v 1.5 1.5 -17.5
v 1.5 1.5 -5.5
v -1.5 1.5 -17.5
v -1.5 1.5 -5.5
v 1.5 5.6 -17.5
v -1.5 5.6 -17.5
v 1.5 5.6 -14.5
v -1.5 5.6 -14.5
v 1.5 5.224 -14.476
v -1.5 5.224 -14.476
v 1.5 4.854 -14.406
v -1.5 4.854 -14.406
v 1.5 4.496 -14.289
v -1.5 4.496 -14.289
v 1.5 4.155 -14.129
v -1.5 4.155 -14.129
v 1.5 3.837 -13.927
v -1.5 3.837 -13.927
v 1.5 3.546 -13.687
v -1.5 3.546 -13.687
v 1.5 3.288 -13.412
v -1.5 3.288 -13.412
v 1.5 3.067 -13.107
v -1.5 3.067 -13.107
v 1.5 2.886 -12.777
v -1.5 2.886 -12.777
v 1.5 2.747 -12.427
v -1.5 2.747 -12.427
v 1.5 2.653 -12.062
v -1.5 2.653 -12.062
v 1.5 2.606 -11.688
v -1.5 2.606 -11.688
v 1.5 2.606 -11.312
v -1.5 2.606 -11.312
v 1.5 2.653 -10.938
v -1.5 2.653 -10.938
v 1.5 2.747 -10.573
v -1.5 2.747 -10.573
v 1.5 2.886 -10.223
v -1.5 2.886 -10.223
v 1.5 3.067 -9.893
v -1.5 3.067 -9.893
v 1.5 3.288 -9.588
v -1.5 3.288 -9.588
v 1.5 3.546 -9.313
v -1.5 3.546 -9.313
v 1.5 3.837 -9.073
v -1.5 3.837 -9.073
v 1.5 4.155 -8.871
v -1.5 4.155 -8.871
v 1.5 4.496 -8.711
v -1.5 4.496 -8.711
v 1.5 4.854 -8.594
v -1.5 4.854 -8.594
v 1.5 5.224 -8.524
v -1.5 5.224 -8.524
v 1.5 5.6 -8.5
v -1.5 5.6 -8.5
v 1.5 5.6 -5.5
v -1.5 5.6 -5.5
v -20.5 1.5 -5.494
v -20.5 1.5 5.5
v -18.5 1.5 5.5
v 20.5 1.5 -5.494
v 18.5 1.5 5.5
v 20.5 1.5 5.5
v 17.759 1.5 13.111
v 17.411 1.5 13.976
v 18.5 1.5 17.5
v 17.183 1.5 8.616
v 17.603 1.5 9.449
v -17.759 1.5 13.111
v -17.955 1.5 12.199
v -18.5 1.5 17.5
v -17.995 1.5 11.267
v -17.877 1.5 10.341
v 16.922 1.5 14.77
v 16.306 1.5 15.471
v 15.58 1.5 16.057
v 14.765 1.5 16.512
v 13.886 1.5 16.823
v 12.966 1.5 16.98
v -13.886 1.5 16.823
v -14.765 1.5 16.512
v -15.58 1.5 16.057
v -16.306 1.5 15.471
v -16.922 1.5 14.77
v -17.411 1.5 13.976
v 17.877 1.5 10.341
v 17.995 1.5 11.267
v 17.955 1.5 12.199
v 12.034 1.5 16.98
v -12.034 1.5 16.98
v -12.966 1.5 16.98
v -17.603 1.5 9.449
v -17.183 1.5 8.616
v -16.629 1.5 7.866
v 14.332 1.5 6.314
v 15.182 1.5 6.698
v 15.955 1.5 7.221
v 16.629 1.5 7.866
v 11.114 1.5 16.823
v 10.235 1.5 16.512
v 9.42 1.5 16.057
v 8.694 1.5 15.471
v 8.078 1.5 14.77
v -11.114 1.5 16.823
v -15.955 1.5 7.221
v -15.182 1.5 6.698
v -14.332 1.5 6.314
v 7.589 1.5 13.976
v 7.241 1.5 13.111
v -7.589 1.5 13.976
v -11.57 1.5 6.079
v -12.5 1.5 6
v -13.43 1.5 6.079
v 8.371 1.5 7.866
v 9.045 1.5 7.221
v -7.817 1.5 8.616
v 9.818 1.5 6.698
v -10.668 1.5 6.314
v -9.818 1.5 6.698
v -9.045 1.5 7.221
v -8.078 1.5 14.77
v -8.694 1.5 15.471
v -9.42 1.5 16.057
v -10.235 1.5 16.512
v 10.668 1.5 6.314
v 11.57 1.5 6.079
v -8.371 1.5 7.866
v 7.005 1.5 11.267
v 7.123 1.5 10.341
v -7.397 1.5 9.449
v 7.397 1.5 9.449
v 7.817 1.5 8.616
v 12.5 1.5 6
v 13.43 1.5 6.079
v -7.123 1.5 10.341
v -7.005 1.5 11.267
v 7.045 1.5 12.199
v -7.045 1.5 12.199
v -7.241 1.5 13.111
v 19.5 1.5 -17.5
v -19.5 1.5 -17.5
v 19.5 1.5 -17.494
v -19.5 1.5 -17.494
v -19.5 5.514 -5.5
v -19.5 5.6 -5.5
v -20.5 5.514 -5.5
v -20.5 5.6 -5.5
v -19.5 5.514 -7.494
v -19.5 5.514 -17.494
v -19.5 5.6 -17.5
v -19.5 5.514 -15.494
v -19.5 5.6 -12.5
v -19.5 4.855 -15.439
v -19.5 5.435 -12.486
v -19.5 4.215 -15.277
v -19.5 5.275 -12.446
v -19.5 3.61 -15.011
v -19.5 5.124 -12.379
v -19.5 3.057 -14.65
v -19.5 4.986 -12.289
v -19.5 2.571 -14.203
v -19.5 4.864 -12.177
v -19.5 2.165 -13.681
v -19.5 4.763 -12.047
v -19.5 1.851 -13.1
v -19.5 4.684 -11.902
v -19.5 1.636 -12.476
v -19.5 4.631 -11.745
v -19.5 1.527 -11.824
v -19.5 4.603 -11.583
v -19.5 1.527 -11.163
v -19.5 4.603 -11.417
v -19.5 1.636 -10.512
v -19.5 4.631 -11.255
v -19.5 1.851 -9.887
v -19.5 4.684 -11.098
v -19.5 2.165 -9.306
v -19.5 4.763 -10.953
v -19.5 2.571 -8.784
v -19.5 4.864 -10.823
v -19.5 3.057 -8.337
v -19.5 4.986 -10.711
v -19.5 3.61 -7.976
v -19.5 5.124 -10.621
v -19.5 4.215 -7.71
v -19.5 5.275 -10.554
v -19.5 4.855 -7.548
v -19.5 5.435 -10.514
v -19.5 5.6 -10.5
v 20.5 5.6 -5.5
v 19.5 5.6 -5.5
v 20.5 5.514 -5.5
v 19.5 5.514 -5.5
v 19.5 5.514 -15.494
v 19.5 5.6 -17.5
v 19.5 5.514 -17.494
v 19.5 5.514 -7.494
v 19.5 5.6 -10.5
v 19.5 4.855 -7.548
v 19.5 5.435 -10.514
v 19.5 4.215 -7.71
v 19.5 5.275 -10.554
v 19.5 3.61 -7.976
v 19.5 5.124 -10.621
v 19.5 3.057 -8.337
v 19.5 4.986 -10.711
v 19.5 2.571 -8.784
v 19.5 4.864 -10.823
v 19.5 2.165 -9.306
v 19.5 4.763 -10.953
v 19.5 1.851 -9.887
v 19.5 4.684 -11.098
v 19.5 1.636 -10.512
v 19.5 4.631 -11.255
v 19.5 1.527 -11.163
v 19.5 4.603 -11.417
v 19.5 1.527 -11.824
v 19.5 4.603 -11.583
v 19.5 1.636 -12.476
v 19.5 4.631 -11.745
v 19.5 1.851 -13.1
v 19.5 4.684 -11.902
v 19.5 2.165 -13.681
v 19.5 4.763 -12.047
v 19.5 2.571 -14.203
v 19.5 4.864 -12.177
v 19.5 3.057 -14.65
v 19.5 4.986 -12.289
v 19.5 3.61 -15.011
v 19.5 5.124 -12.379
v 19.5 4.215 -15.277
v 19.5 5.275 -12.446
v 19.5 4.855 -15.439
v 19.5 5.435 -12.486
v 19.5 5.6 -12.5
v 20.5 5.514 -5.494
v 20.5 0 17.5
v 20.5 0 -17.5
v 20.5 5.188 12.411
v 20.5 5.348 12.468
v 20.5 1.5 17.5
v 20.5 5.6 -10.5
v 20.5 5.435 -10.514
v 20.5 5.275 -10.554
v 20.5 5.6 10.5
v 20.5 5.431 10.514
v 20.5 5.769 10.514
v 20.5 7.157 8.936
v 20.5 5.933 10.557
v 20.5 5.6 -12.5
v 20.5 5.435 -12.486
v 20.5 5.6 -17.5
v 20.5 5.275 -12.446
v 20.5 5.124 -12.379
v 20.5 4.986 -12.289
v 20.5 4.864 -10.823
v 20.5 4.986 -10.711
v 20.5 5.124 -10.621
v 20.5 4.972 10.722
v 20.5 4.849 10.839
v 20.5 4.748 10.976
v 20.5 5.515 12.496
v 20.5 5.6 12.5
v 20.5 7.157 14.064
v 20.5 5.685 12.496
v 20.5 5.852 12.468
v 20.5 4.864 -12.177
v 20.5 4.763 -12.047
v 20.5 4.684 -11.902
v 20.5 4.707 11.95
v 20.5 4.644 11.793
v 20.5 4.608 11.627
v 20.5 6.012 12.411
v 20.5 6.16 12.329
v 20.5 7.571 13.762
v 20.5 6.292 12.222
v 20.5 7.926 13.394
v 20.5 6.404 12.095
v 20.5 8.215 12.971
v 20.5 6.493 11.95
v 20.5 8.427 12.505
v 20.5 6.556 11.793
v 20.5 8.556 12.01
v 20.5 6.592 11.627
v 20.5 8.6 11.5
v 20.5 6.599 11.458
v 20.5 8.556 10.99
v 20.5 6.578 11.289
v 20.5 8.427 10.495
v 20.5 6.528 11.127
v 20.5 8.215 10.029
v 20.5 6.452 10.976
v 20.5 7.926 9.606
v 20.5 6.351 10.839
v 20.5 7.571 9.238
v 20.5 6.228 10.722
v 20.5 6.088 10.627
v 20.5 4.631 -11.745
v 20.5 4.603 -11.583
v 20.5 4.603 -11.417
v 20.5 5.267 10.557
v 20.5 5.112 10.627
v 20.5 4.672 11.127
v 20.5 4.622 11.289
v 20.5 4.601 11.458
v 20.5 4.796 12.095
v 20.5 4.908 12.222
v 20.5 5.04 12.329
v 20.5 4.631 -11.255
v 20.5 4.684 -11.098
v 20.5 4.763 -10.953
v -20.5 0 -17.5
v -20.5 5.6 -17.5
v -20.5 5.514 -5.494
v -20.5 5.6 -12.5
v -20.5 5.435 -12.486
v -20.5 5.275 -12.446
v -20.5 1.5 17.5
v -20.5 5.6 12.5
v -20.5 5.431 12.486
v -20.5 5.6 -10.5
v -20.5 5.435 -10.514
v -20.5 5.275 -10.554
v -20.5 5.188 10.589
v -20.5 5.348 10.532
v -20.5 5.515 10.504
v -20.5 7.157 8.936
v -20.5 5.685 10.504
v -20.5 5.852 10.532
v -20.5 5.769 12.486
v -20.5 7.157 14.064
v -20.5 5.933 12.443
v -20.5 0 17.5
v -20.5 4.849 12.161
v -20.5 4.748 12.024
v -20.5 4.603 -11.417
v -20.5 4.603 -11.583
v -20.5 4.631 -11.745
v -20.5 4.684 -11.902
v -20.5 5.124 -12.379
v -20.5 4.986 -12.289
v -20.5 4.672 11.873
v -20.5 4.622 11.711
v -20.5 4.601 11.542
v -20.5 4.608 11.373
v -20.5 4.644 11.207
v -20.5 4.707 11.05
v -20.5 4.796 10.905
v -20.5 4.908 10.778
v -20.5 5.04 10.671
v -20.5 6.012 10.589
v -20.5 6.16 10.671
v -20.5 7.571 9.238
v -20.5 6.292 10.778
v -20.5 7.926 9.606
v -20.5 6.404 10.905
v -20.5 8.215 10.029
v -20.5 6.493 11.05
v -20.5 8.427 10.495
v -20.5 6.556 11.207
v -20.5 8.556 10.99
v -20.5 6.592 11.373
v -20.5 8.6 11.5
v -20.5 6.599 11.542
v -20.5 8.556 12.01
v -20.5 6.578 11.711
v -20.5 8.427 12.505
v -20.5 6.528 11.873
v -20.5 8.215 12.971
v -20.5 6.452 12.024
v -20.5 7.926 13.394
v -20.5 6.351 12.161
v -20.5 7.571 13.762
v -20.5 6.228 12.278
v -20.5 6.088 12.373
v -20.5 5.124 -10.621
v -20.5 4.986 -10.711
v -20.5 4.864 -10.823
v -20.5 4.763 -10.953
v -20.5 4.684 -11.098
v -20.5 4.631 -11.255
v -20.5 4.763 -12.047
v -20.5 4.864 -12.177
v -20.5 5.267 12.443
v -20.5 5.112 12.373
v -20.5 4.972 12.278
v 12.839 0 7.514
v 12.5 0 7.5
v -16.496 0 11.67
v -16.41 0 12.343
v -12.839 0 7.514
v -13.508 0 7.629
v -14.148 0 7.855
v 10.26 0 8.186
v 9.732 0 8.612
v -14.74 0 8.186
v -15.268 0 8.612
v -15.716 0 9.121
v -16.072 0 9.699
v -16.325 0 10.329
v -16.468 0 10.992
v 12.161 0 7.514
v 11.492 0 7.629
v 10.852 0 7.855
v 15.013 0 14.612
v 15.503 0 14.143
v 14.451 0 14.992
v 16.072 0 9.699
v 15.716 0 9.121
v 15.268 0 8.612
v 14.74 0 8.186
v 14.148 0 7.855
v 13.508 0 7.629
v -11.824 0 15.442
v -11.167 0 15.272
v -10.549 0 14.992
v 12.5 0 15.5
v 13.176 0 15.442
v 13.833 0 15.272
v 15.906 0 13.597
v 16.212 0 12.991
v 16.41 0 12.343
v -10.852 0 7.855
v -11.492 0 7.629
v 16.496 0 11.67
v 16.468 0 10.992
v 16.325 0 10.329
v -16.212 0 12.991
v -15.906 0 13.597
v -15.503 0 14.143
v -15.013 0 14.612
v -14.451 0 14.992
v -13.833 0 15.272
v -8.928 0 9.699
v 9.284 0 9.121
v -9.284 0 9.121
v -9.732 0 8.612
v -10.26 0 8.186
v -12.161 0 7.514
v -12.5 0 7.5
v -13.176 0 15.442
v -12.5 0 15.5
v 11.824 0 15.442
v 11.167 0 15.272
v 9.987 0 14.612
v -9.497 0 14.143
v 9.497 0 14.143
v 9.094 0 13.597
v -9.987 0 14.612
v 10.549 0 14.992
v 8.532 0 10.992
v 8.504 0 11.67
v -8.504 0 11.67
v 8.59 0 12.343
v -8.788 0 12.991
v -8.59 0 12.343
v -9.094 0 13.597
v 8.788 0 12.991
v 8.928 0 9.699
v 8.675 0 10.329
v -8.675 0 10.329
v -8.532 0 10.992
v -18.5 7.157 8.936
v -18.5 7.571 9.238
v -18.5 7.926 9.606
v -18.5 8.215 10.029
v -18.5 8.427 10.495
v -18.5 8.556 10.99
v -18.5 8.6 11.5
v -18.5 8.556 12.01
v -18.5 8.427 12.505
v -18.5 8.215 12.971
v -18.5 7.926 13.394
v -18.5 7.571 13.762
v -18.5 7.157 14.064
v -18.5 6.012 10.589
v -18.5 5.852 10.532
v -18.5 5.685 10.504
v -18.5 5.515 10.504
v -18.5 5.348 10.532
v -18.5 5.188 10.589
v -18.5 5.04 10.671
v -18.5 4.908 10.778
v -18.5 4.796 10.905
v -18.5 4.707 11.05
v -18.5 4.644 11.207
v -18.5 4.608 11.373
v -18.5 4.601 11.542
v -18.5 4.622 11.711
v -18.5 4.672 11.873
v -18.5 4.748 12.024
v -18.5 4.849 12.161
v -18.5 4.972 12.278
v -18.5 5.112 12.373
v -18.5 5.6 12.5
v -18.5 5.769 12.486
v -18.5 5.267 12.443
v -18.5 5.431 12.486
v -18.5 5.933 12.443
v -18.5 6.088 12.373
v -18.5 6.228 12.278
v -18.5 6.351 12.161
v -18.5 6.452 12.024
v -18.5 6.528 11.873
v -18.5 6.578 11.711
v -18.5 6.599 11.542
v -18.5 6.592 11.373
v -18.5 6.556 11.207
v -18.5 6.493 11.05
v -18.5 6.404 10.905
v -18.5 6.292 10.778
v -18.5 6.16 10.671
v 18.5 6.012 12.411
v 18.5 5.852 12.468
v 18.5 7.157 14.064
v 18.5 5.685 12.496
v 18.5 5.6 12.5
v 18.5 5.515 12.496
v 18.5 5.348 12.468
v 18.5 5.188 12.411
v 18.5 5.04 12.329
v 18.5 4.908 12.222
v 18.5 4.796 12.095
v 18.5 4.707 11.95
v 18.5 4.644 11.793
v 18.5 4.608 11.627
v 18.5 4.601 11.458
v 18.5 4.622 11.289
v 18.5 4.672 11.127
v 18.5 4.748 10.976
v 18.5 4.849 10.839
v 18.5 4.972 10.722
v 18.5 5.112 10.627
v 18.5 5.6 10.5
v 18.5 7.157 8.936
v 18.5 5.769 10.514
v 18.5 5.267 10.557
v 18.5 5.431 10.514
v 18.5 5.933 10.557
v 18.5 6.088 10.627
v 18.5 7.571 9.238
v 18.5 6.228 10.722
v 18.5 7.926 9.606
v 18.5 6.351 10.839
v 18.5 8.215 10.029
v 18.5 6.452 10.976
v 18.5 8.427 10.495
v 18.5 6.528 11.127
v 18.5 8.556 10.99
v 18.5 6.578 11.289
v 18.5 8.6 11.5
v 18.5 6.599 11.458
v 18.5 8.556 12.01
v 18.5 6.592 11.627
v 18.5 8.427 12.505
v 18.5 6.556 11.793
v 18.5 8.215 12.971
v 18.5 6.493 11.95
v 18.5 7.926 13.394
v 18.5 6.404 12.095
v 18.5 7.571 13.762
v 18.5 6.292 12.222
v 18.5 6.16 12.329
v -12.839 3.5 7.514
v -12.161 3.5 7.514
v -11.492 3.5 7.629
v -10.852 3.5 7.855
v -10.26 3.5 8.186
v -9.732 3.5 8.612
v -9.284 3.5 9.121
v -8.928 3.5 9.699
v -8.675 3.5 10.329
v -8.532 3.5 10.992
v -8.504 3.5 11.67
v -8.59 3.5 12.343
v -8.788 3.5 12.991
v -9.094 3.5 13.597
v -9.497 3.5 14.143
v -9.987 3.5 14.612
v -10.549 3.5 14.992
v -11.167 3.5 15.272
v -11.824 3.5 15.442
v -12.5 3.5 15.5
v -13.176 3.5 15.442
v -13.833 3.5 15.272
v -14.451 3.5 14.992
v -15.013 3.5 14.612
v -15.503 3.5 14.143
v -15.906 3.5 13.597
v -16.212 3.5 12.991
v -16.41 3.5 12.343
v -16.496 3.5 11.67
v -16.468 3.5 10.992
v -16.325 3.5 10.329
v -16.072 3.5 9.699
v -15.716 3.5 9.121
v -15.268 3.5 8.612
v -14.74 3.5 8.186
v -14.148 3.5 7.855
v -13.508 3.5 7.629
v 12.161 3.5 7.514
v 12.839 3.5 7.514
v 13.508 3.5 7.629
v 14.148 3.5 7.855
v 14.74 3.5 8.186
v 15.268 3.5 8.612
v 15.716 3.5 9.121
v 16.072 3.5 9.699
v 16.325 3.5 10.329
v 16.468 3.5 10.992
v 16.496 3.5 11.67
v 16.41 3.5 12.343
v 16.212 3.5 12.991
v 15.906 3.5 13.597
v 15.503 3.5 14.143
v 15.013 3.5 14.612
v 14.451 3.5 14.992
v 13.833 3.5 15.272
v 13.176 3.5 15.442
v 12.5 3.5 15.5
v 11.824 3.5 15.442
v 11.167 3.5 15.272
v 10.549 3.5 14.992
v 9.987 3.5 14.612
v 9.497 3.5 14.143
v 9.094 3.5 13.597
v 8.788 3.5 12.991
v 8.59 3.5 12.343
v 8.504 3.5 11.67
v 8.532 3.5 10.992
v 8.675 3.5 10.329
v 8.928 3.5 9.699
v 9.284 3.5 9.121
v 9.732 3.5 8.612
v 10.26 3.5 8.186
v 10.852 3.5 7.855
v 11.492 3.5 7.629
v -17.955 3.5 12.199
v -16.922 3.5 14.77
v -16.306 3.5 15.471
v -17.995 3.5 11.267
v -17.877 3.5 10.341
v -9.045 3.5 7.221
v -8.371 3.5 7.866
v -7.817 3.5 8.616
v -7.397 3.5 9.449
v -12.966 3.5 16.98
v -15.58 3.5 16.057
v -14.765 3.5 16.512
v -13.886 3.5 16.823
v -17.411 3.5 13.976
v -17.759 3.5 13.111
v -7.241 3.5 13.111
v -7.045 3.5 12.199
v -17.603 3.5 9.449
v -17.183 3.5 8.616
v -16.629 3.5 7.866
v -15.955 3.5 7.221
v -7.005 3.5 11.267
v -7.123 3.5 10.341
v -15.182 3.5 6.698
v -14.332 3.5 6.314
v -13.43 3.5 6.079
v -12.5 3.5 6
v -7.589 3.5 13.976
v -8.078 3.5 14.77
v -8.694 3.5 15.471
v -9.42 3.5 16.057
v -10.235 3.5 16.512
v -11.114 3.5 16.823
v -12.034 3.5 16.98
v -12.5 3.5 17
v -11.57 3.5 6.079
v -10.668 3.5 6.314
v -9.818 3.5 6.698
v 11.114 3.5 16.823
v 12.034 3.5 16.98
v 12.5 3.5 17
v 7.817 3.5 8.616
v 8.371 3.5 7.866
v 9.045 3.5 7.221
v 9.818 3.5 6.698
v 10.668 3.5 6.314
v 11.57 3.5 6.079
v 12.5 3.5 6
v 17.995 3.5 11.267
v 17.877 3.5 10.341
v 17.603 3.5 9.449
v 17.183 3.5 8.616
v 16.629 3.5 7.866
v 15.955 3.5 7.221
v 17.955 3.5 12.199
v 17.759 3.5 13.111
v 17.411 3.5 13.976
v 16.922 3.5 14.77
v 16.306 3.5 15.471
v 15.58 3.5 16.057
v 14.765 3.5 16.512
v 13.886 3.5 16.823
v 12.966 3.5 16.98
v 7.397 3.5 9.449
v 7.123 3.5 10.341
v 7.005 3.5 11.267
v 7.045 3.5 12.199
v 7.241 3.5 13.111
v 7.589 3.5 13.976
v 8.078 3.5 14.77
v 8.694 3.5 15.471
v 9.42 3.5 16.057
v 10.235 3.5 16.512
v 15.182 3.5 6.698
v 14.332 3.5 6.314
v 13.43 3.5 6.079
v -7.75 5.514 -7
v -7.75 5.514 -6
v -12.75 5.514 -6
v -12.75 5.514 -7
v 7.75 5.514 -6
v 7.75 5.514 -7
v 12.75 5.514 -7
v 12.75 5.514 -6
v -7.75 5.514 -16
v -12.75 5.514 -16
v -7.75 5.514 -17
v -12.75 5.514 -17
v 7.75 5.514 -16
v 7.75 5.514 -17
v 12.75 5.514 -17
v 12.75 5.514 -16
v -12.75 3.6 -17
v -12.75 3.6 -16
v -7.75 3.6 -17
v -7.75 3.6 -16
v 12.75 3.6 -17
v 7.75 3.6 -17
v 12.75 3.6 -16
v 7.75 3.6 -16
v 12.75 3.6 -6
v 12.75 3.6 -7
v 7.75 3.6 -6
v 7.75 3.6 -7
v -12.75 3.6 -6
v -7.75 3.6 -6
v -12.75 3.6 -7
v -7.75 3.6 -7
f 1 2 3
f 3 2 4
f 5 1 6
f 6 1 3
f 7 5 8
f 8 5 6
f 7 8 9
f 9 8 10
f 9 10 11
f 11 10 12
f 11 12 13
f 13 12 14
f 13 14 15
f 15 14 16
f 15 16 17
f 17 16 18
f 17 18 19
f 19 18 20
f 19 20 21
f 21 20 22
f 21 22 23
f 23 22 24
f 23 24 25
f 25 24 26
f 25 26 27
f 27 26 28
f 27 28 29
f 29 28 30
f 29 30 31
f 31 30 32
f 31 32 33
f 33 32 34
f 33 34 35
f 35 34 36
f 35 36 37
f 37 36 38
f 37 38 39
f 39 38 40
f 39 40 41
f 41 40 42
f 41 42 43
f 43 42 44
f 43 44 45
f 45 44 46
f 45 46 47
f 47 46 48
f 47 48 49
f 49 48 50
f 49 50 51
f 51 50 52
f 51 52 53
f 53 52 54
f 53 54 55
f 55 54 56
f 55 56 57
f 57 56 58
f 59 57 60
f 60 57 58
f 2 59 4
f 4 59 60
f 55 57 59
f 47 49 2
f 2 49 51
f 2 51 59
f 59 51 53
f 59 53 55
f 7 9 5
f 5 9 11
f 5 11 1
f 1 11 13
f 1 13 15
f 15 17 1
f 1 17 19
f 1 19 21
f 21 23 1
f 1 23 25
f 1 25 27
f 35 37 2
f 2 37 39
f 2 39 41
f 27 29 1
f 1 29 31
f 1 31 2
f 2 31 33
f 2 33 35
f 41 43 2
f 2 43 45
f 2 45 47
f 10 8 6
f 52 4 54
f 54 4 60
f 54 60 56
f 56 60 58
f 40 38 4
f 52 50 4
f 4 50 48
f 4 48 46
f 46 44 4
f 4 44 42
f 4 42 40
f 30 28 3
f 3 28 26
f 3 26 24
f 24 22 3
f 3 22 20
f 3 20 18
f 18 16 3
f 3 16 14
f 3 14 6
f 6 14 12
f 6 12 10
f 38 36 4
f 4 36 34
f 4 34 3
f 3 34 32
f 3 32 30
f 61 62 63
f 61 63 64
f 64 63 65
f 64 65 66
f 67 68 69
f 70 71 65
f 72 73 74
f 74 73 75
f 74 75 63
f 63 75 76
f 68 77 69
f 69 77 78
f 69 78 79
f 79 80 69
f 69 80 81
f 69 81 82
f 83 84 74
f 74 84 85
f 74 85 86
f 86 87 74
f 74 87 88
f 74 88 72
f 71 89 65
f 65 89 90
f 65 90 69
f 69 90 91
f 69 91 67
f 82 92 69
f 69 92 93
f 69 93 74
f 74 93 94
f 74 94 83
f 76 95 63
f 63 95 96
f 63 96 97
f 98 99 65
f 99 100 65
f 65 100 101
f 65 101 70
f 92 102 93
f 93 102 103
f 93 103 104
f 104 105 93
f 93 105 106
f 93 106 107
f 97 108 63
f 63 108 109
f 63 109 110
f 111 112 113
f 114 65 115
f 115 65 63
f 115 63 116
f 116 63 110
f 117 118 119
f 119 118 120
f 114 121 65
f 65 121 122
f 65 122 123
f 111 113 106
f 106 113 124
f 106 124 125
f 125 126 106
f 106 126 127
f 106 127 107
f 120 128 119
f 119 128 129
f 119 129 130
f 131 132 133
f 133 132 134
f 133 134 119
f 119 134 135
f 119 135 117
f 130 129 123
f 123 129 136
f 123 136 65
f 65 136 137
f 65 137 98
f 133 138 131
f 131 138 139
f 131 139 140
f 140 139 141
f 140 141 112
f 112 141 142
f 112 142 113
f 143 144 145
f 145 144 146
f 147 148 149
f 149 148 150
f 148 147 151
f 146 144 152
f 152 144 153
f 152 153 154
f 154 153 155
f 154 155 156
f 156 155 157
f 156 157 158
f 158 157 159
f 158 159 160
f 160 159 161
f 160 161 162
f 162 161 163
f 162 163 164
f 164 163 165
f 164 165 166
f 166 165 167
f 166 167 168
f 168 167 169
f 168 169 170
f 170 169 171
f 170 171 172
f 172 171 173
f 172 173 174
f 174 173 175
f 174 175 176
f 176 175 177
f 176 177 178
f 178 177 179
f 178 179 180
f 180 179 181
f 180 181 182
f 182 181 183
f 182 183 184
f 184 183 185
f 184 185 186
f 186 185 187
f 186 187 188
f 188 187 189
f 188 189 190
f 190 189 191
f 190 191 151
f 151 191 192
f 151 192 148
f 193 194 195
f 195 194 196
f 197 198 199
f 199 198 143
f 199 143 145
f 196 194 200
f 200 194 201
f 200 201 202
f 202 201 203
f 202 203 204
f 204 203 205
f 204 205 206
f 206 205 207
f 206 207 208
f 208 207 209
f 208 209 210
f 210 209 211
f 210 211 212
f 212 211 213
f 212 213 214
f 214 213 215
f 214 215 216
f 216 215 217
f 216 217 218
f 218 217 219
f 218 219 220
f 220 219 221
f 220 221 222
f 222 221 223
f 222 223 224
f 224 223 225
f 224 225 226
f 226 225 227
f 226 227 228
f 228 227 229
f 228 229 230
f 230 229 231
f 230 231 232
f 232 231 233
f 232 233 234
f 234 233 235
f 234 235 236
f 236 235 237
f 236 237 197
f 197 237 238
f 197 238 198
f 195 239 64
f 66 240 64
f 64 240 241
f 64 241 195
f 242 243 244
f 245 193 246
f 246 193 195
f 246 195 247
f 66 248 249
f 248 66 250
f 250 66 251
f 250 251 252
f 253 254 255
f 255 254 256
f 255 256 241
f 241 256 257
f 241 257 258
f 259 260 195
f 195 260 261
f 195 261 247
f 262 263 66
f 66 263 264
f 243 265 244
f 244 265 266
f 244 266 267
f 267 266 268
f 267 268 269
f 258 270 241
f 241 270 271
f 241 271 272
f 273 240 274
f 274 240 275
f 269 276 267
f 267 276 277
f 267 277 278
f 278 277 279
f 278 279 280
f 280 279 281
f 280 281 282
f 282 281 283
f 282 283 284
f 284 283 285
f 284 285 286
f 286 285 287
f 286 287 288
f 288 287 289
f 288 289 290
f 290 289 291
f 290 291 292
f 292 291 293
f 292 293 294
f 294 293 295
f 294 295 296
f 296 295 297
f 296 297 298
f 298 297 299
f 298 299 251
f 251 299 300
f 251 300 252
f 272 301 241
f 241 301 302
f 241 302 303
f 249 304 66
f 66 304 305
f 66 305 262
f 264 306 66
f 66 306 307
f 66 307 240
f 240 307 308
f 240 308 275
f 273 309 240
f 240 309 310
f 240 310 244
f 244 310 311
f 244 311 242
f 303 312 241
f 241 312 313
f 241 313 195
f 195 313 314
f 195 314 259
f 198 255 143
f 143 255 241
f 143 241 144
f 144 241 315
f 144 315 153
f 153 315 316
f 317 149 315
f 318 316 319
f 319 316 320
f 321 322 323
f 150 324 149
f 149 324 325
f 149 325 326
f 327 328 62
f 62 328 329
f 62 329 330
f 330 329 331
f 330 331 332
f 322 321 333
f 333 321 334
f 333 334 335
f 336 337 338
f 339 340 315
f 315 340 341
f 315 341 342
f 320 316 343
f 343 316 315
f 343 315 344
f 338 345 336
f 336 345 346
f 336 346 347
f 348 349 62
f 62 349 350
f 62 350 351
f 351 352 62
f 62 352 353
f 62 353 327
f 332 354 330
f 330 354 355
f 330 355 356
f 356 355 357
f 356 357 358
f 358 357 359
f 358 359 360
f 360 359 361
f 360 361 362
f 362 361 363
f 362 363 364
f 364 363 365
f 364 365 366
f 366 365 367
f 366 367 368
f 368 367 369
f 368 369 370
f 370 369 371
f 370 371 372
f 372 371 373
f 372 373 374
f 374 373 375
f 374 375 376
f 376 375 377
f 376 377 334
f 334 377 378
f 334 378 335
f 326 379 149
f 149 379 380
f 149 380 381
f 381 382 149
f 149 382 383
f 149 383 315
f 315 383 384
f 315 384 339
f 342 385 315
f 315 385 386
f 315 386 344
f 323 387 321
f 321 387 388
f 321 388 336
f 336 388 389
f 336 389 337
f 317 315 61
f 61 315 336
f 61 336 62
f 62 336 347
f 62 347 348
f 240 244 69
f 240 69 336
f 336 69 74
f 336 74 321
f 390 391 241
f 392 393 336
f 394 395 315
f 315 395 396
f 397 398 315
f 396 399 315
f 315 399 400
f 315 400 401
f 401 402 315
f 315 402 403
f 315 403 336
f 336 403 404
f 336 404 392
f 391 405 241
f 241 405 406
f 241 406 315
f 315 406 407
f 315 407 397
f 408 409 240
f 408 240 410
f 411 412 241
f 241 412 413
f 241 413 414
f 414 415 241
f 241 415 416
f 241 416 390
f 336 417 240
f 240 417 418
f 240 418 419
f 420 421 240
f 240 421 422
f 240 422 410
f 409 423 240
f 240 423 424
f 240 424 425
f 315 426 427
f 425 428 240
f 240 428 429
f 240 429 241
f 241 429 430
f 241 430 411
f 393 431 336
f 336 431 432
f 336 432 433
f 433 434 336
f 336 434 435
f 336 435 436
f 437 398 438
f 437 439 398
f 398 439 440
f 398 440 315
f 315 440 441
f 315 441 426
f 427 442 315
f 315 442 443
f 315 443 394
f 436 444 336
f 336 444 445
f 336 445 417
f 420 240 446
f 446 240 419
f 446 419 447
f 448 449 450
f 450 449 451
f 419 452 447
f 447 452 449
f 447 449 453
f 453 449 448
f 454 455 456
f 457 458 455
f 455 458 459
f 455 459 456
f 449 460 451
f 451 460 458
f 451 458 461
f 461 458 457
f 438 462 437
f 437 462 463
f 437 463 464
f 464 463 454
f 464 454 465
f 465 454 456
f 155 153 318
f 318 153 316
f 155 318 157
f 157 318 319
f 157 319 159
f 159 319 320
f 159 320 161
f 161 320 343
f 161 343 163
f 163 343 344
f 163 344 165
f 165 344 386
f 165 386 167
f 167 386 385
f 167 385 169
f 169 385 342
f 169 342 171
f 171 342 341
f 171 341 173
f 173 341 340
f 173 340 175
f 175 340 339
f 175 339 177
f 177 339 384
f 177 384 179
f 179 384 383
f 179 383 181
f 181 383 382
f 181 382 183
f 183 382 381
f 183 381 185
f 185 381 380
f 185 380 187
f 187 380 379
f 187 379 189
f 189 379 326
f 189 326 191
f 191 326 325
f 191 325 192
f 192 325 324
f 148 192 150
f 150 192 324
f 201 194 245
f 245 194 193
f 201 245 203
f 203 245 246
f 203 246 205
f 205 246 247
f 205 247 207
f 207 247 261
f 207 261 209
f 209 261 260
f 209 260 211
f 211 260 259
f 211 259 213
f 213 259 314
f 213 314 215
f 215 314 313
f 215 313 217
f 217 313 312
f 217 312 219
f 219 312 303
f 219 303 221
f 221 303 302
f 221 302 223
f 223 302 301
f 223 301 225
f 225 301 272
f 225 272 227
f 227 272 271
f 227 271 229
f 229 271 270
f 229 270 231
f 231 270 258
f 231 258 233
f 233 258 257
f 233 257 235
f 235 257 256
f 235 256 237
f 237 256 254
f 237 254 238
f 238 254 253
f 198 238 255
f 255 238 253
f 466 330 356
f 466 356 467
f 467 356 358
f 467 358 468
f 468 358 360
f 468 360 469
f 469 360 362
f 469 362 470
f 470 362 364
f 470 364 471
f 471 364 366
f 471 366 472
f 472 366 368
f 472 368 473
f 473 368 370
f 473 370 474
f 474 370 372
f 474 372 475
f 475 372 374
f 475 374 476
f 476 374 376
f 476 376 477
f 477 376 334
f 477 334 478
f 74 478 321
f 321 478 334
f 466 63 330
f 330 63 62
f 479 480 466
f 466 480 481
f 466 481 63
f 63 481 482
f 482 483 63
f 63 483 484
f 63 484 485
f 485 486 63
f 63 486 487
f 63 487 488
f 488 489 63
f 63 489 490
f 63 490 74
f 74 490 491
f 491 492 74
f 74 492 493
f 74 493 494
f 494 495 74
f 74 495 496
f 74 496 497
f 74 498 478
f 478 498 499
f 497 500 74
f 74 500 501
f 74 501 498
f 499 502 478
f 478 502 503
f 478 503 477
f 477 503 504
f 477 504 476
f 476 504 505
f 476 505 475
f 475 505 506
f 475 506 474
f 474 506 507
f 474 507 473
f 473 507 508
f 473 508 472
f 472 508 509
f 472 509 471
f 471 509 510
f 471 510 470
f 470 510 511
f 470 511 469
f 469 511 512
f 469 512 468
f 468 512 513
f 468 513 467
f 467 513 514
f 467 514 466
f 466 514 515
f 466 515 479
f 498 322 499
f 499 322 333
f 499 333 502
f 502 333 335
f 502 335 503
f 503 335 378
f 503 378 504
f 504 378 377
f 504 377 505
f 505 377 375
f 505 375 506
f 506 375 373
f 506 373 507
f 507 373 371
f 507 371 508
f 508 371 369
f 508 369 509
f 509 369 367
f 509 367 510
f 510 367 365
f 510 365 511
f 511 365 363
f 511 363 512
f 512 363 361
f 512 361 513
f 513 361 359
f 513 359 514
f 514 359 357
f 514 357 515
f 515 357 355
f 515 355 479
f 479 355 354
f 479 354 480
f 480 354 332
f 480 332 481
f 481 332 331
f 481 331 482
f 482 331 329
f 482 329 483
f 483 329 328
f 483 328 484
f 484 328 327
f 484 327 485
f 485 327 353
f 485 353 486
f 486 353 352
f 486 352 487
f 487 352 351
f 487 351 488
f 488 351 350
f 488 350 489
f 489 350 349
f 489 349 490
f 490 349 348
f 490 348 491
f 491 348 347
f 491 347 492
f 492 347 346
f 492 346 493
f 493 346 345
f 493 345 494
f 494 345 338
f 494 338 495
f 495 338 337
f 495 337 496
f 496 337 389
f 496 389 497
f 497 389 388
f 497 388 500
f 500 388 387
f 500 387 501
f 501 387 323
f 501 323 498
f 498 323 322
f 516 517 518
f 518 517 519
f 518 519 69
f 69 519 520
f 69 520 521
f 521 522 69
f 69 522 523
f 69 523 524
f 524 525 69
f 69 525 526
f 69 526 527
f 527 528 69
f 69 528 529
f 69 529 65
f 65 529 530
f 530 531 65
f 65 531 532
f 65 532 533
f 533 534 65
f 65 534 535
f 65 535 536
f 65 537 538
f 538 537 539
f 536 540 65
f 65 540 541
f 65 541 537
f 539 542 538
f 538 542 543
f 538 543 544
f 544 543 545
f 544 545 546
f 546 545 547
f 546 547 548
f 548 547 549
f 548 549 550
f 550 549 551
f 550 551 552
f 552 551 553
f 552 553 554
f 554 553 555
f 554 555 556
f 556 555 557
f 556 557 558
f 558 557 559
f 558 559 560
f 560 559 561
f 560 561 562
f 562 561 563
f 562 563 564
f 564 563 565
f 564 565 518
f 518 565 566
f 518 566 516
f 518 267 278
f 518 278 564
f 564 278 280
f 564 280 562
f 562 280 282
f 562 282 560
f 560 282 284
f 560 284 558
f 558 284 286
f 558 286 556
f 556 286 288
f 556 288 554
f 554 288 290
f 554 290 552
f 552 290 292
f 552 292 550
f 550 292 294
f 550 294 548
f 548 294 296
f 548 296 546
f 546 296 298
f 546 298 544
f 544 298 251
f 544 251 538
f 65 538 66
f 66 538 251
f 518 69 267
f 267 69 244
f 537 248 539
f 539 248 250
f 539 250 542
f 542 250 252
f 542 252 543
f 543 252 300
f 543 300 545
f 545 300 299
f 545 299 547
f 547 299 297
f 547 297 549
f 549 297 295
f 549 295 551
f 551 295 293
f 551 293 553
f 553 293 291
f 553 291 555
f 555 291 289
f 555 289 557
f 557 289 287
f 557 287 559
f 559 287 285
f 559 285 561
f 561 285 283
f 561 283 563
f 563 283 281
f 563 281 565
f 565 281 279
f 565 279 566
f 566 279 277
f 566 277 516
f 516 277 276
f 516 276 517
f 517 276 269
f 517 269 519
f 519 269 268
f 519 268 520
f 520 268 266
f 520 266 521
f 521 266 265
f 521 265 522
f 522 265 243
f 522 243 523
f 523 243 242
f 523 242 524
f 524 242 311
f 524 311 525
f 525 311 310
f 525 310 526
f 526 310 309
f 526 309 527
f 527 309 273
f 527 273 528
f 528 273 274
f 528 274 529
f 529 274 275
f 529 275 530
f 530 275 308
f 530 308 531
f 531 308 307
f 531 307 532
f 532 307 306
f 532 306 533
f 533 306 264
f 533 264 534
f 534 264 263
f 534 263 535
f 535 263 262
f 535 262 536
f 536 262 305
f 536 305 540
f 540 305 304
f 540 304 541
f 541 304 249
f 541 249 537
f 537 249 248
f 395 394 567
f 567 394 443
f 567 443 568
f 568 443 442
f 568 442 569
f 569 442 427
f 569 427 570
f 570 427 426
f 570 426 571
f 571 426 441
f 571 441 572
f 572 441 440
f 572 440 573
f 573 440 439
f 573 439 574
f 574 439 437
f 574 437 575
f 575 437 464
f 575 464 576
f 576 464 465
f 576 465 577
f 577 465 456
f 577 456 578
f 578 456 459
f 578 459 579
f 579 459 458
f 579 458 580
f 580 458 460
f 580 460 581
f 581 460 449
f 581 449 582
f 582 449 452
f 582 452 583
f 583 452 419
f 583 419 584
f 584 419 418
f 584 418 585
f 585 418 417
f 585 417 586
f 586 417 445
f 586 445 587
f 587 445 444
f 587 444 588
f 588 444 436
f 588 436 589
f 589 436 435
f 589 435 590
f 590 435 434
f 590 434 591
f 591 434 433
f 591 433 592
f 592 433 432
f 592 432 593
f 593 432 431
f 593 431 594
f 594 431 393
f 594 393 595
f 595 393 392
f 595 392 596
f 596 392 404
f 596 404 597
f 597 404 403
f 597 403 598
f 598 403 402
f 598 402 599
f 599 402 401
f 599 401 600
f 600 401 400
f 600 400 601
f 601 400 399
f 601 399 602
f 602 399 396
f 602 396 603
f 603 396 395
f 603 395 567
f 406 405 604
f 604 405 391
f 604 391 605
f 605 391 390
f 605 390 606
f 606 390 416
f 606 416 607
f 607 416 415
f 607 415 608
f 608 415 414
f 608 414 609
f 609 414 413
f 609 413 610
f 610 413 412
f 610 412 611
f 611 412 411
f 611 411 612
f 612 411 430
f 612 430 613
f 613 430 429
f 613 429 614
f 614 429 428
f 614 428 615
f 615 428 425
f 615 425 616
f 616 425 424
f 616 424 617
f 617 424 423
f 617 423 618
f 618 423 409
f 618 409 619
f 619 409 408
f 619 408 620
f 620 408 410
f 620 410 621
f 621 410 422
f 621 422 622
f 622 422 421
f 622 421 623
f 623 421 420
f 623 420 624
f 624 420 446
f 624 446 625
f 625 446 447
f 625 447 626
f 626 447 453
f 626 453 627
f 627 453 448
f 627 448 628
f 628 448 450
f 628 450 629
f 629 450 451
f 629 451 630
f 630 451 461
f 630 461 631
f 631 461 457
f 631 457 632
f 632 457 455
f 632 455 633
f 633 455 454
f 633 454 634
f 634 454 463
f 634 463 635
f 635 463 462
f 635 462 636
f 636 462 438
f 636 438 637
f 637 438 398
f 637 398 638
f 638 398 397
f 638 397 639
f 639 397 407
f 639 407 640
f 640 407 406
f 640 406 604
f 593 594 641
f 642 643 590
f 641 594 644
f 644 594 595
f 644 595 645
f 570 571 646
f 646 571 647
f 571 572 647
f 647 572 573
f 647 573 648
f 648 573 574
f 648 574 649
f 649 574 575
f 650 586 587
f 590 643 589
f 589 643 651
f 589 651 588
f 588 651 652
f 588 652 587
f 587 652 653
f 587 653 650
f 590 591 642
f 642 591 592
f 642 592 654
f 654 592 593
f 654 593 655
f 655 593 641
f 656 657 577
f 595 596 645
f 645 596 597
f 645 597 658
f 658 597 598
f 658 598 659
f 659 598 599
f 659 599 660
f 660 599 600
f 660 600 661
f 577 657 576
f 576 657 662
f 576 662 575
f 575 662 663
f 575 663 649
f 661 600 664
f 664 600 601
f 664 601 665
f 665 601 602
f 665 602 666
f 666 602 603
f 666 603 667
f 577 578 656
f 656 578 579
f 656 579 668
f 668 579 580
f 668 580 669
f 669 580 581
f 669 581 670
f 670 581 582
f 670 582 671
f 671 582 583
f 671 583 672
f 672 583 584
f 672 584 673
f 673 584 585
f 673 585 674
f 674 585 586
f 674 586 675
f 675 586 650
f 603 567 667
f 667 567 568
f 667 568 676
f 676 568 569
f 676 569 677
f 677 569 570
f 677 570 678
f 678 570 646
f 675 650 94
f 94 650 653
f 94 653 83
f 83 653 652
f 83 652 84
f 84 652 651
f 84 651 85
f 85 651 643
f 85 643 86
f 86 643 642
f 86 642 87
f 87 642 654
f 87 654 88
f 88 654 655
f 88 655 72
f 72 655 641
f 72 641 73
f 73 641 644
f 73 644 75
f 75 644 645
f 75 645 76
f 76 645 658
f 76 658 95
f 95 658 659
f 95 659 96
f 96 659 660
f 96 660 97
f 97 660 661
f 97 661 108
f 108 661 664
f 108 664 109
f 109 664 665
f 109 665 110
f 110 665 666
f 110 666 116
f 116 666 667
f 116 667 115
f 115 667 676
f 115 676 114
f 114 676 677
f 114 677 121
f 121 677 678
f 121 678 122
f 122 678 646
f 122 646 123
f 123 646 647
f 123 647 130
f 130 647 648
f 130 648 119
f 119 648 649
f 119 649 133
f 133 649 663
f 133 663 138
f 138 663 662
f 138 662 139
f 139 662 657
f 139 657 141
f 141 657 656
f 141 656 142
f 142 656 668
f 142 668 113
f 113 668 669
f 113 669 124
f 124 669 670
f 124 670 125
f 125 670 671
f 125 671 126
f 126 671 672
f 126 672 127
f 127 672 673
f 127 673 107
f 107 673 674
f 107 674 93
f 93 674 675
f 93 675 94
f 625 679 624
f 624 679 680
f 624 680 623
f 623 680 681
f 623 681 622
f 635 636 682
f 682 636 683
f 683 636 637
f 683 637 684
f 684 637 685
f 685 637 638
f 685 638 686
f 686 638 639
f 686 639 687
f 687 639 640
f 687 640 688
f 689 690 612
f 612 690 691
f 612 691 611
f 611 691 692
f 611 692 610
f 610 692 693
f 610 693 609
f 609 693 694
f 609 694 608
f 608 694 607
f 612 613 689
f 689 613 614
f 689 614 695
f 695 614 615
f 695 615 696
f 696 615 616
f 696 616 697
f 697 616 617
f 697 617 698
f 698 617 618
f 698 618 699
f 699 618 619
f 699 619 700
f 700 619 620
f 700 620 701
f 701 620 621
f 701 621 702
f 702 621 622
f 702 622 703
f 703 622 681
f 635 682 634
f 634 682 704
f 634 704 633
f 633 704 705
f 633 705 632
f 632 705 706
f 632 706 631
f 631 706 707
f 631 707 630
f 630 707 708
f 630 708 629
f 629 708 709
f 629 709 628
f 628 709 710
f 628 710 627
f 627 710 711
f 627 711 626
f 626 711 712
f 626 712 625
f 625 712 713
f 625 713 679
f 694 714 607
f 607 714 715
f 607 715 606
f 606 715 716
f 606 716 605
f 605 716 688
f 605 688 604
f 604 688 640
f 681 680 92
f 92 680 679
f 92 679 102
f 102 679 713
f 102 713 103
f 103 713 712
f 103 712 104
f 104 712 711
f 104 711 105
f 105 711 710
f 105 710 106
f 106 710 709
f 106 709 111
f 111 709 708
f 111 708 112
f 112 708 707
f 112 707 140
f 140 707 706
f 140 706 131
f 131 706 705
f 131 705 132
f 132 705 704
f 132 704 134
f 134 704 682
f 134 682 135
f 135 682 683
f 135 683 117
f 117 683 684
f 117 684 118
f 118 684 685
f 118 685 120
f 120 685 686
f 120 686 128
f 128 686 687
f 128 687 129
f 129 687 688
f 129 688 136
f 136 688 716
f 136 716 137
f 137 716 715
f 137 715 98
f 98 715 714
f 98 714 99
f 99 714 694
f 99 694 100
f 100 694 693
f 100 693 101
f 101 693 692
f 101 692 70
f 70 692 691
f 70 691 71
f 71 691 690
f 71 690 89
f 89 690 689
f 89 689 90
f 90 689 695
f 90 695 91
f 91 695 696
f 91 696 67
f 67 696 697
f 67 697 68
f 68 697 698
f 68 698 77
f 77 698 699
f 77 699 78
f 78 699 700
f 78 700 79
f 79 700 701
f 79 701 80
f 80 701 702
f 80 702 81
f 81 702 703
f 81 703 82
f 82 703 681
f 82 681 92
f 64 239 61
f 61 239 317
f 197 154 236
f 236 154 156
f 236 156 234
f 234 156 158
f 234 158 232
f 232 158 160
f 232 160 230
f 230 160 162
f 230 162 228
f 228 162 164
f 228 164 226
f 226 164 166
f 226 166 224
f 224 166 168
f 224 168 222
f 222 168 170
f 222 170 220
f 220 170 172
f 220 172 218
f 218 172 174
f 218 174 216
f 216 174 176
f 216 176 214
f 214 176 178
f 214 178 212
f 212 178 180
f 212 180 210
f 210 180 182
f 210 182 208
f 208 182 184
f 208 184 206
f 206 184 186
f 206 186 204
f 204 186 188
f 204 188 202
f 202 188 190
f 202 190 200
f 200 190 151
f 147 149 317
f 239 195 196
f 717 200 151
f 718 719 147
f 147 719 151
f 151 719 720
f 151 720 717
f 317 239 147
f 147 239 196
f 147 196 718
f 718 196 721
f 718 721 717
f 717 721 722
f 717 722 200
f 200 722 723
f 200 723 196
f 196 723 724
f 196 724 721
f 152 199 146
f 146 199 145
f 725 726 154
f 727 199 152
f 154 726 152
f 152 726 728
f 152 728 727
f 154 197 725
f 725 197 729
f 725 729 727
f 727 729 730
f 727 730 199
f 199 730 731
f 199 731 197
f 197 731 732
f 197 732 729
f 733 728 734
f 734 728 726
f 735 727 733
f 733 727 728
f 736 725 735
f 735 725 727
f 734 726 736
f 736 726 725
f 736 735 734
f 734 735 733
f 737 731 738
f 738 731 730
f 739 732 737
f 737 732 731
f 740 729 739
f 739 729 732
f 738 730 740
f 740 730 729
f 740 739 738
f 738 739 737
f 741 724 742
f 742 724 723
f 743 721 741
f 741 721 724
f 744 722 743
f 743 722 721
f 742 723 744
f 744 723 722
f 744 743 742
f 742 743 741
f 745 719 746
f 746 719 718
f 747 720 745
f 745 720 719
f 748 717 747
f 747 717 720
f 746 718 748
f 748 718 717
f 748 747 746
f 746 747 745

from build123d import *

# Parameters (mm, degrees)
SKETCH1_W           = 41
SKETCH1_H           = 35
BOSS_EXTRUDE1_DEPTH = 1.5
BOSS_EXTRUDE3_DEPTH = 1.5
BOSS_EXTRUDE4_DEPTH = 1
SKETCH5_R           = 1
BOSS_EXTRUDE5_DEPTH = 2
SKETCH6_R           = 4
CUT_EXTRUDE1_DEPTH  = 3
SKETCH7_R           = 5.5
SKETCH7_R_2         = 4
BOSS_EXTRUDE6_DEPTH = 2
BOSS_EXTRUDE7_DEPTH = 20.5
SKETCH8_W           = 5
SKETCH8_H           = 1
CUT_EXTRUDE2_DEPTH  = 2


with BuildPart() as part:
    # Sketch1 → Boss-Extrude1 (new body)
    with BuildSketch(Plane(origin=(0, 0, 0), x_dir=(1, 0, 0), z_dir=(0, 1, 0))):
        Rectangle(SKETCH1_W, SKETCH1_H)
    extrude(amount=BOSS_EXTRUDE1_DEPTH)

    # Sketch4 → Boss-Extrude4 (add)
    with BuildSketch(Plane.ZY.offset(20.5)):
        with BuildLine():
            Line((-10.5, 5.6), (-5.5, 5.6))
            Line((-5.5, 5.6), (-5.5, 1.5))
            Line((-5.5, 1.5), (-17.5, 1.5))
            Line((-17.5, 1.5), (-17.5, 5.6))
            Line((-17.5, 5.6), (-12.5, 5.6))
            ThreePointArc((-12.5, 5.6), (-11.5, 4.6), (-10.5, 5.6))
        make_face()
    boss_extrude4 = extrude(amount=-BOSS_EXTRUDE4_DEPTH)

    # Mirror1: Boss-Extrude4 across plane
    add(boss_extrude4.mirror(Plane(origin=(0, 0, 0), x_dir=(0, 0, 1), z_dir=(1, 0, 0))))

    # Sketch5 → Boss-Extrude5 (add)
    with BuildSketch(Plane.ZY.offset(20.5)):
        with BuildLine():
            Line((8.935852656, 7.157288797), (5.5, 1.5))
            Line((5.5, 1.5), (17.5, 1.5))
            Line((17.5, 1.5), (14.064147344, 7.157288797))
            ThreePointArc((14.064147344, 7.157288797), (11.5, 8.6), (8.935852656, 7.157288797))
        make_face()
        with Locations((11.5, 5.6)):
            Circle(SKETCH5_R, mode=Mode.SUBTRACT)
    boss_extrude5 = extrude(amount=-BOSS_EXTRUDE5_DEPTH)

    # Mirror2: Boss-Extrude5 across plane
    add(boss_extrude5.mirror(Plane(origin=(0, 0, 0), x_dir=(0, 0, 1), z_dir=(1, 0, 0))))

    # Sketch6 → Cut-Extrude1 (cut)
    with BuildSketch(Plane(origin=(0, 1.5, 0), x_dir=(1, 0, 0), z_dir=(0, 1, 0))):
        with Locations((-12.5, -11.5)):
            Circle(SKETCH6_R)
        with Locations((12.5, -11.5)):
            Circle(SKETCH6_R)
    extrude(amount=-CUT_EXTRUDE1_DEPTH, mode=Mode.SUBTRACT)

    # Sketch7 → Boss-Extrude6 (add)
    with BuildSketch(Plane(origin=(0, 1.5, 0), x_dir=(1, 0, 0), z_dir=(0, 1, 0))):
        with Locations((-12.5, -11.5)):
            Circle(SKETCH7_R)
        with Locations((-12.5, -11.5)):
            Circle(SKETCH7_R_2, mode=Mode.SUBTRACT)
        with Locations((12.5, -11.5)):
            Circle(SKETCH7_R)
        with Locations((12.5, -11.5)):
            Circle(SKETCH7_R_2, mode=Mode.SUBTRACT)
    extrude(amount=BOSS_EXTRUDE6_DEPTH)

    # Sketch9 → Boss-Extrude7 (add, symmetric)
    with BuildSketch(Plane(origin=(0, 0, 0), x_dir=(0, 0, -1), z_dir=(1, 0, 0))):
        with BuildLine():
            Line((15.493586506, 5.513707806), (17.493586506, 5.513707806))
            Line((17.493586506, 5.513707806), (17.493586506, 1.413707806))
            Line((17.493586506, 1.413707806), (5.493586506, 1.413707806))
            Line((5.493586506, 1.413707806), (5.493586506, 5.513707806))
            Line((5.493586506, 5.513707806), (7.493586506, 5.513707806))
            ThreePointArc((7.493586506, 5.513707806), (11.493586506, 1.513707806), (15.493586506, 5.513707806))
        make_face()
    extrude(amount=BOSS_EXTRUDE7_DEPTH, both=True)

    # Sketch8 → Cut-Extrude2 (cut)
    with BuildSketch(Plane(origin=(0, 5.6, 0), x_dir=(1, 0, 0), z_dir=(0, 1, 0))):
        with Locations((-10.25, 16.5)):
            Rectangle(SKETCH8_W, SKETCH8_H)
        with Locations((-10.25, 6.5)):
            Rectangle(SKETCH8_W, SKETCH8_H)
        with Locations((10.25, 6.5)):
            Rectangle(SKETCH8_W, SKETCH8_H)
        with Locations((10.25, 16.5)):
            Rectangle(SKETCH8_W, SKETCH8_H)
    extrude(amount=-CUT_EXTRUDE2_DEPTH, mode=Mode.SUBTRACT)


with BuildPart() as body_2:
    # Sketch3 → Boss-Extrude3 (new body, symmetric)
    with BuildSketch(Plane(origin=(0, 0, 0), x_dir=(0, 0, -1), z_dir=(1, 0, 0))):
        with BuildLine():
            Line((5.5, 1.5), (5.5, 5.6))
            Line((5.5, 5.6), (8.5, 5.6))
            ThreePointArc((8.5, 5.6), (11.5, 2.6), (14.5, 5.6))
            Line((14.5, 5.6), (17.5, 5.6))
            Line((17.5, 5.6), (17.5, 1.5))
            Line((17.5, 1.5), (5.5, 1.5))
        make_face()
    extrude(amount=BOSS_EXTRUDE3_DEPTH, both=True)


solid = Compound([part.part, body_2.part])
